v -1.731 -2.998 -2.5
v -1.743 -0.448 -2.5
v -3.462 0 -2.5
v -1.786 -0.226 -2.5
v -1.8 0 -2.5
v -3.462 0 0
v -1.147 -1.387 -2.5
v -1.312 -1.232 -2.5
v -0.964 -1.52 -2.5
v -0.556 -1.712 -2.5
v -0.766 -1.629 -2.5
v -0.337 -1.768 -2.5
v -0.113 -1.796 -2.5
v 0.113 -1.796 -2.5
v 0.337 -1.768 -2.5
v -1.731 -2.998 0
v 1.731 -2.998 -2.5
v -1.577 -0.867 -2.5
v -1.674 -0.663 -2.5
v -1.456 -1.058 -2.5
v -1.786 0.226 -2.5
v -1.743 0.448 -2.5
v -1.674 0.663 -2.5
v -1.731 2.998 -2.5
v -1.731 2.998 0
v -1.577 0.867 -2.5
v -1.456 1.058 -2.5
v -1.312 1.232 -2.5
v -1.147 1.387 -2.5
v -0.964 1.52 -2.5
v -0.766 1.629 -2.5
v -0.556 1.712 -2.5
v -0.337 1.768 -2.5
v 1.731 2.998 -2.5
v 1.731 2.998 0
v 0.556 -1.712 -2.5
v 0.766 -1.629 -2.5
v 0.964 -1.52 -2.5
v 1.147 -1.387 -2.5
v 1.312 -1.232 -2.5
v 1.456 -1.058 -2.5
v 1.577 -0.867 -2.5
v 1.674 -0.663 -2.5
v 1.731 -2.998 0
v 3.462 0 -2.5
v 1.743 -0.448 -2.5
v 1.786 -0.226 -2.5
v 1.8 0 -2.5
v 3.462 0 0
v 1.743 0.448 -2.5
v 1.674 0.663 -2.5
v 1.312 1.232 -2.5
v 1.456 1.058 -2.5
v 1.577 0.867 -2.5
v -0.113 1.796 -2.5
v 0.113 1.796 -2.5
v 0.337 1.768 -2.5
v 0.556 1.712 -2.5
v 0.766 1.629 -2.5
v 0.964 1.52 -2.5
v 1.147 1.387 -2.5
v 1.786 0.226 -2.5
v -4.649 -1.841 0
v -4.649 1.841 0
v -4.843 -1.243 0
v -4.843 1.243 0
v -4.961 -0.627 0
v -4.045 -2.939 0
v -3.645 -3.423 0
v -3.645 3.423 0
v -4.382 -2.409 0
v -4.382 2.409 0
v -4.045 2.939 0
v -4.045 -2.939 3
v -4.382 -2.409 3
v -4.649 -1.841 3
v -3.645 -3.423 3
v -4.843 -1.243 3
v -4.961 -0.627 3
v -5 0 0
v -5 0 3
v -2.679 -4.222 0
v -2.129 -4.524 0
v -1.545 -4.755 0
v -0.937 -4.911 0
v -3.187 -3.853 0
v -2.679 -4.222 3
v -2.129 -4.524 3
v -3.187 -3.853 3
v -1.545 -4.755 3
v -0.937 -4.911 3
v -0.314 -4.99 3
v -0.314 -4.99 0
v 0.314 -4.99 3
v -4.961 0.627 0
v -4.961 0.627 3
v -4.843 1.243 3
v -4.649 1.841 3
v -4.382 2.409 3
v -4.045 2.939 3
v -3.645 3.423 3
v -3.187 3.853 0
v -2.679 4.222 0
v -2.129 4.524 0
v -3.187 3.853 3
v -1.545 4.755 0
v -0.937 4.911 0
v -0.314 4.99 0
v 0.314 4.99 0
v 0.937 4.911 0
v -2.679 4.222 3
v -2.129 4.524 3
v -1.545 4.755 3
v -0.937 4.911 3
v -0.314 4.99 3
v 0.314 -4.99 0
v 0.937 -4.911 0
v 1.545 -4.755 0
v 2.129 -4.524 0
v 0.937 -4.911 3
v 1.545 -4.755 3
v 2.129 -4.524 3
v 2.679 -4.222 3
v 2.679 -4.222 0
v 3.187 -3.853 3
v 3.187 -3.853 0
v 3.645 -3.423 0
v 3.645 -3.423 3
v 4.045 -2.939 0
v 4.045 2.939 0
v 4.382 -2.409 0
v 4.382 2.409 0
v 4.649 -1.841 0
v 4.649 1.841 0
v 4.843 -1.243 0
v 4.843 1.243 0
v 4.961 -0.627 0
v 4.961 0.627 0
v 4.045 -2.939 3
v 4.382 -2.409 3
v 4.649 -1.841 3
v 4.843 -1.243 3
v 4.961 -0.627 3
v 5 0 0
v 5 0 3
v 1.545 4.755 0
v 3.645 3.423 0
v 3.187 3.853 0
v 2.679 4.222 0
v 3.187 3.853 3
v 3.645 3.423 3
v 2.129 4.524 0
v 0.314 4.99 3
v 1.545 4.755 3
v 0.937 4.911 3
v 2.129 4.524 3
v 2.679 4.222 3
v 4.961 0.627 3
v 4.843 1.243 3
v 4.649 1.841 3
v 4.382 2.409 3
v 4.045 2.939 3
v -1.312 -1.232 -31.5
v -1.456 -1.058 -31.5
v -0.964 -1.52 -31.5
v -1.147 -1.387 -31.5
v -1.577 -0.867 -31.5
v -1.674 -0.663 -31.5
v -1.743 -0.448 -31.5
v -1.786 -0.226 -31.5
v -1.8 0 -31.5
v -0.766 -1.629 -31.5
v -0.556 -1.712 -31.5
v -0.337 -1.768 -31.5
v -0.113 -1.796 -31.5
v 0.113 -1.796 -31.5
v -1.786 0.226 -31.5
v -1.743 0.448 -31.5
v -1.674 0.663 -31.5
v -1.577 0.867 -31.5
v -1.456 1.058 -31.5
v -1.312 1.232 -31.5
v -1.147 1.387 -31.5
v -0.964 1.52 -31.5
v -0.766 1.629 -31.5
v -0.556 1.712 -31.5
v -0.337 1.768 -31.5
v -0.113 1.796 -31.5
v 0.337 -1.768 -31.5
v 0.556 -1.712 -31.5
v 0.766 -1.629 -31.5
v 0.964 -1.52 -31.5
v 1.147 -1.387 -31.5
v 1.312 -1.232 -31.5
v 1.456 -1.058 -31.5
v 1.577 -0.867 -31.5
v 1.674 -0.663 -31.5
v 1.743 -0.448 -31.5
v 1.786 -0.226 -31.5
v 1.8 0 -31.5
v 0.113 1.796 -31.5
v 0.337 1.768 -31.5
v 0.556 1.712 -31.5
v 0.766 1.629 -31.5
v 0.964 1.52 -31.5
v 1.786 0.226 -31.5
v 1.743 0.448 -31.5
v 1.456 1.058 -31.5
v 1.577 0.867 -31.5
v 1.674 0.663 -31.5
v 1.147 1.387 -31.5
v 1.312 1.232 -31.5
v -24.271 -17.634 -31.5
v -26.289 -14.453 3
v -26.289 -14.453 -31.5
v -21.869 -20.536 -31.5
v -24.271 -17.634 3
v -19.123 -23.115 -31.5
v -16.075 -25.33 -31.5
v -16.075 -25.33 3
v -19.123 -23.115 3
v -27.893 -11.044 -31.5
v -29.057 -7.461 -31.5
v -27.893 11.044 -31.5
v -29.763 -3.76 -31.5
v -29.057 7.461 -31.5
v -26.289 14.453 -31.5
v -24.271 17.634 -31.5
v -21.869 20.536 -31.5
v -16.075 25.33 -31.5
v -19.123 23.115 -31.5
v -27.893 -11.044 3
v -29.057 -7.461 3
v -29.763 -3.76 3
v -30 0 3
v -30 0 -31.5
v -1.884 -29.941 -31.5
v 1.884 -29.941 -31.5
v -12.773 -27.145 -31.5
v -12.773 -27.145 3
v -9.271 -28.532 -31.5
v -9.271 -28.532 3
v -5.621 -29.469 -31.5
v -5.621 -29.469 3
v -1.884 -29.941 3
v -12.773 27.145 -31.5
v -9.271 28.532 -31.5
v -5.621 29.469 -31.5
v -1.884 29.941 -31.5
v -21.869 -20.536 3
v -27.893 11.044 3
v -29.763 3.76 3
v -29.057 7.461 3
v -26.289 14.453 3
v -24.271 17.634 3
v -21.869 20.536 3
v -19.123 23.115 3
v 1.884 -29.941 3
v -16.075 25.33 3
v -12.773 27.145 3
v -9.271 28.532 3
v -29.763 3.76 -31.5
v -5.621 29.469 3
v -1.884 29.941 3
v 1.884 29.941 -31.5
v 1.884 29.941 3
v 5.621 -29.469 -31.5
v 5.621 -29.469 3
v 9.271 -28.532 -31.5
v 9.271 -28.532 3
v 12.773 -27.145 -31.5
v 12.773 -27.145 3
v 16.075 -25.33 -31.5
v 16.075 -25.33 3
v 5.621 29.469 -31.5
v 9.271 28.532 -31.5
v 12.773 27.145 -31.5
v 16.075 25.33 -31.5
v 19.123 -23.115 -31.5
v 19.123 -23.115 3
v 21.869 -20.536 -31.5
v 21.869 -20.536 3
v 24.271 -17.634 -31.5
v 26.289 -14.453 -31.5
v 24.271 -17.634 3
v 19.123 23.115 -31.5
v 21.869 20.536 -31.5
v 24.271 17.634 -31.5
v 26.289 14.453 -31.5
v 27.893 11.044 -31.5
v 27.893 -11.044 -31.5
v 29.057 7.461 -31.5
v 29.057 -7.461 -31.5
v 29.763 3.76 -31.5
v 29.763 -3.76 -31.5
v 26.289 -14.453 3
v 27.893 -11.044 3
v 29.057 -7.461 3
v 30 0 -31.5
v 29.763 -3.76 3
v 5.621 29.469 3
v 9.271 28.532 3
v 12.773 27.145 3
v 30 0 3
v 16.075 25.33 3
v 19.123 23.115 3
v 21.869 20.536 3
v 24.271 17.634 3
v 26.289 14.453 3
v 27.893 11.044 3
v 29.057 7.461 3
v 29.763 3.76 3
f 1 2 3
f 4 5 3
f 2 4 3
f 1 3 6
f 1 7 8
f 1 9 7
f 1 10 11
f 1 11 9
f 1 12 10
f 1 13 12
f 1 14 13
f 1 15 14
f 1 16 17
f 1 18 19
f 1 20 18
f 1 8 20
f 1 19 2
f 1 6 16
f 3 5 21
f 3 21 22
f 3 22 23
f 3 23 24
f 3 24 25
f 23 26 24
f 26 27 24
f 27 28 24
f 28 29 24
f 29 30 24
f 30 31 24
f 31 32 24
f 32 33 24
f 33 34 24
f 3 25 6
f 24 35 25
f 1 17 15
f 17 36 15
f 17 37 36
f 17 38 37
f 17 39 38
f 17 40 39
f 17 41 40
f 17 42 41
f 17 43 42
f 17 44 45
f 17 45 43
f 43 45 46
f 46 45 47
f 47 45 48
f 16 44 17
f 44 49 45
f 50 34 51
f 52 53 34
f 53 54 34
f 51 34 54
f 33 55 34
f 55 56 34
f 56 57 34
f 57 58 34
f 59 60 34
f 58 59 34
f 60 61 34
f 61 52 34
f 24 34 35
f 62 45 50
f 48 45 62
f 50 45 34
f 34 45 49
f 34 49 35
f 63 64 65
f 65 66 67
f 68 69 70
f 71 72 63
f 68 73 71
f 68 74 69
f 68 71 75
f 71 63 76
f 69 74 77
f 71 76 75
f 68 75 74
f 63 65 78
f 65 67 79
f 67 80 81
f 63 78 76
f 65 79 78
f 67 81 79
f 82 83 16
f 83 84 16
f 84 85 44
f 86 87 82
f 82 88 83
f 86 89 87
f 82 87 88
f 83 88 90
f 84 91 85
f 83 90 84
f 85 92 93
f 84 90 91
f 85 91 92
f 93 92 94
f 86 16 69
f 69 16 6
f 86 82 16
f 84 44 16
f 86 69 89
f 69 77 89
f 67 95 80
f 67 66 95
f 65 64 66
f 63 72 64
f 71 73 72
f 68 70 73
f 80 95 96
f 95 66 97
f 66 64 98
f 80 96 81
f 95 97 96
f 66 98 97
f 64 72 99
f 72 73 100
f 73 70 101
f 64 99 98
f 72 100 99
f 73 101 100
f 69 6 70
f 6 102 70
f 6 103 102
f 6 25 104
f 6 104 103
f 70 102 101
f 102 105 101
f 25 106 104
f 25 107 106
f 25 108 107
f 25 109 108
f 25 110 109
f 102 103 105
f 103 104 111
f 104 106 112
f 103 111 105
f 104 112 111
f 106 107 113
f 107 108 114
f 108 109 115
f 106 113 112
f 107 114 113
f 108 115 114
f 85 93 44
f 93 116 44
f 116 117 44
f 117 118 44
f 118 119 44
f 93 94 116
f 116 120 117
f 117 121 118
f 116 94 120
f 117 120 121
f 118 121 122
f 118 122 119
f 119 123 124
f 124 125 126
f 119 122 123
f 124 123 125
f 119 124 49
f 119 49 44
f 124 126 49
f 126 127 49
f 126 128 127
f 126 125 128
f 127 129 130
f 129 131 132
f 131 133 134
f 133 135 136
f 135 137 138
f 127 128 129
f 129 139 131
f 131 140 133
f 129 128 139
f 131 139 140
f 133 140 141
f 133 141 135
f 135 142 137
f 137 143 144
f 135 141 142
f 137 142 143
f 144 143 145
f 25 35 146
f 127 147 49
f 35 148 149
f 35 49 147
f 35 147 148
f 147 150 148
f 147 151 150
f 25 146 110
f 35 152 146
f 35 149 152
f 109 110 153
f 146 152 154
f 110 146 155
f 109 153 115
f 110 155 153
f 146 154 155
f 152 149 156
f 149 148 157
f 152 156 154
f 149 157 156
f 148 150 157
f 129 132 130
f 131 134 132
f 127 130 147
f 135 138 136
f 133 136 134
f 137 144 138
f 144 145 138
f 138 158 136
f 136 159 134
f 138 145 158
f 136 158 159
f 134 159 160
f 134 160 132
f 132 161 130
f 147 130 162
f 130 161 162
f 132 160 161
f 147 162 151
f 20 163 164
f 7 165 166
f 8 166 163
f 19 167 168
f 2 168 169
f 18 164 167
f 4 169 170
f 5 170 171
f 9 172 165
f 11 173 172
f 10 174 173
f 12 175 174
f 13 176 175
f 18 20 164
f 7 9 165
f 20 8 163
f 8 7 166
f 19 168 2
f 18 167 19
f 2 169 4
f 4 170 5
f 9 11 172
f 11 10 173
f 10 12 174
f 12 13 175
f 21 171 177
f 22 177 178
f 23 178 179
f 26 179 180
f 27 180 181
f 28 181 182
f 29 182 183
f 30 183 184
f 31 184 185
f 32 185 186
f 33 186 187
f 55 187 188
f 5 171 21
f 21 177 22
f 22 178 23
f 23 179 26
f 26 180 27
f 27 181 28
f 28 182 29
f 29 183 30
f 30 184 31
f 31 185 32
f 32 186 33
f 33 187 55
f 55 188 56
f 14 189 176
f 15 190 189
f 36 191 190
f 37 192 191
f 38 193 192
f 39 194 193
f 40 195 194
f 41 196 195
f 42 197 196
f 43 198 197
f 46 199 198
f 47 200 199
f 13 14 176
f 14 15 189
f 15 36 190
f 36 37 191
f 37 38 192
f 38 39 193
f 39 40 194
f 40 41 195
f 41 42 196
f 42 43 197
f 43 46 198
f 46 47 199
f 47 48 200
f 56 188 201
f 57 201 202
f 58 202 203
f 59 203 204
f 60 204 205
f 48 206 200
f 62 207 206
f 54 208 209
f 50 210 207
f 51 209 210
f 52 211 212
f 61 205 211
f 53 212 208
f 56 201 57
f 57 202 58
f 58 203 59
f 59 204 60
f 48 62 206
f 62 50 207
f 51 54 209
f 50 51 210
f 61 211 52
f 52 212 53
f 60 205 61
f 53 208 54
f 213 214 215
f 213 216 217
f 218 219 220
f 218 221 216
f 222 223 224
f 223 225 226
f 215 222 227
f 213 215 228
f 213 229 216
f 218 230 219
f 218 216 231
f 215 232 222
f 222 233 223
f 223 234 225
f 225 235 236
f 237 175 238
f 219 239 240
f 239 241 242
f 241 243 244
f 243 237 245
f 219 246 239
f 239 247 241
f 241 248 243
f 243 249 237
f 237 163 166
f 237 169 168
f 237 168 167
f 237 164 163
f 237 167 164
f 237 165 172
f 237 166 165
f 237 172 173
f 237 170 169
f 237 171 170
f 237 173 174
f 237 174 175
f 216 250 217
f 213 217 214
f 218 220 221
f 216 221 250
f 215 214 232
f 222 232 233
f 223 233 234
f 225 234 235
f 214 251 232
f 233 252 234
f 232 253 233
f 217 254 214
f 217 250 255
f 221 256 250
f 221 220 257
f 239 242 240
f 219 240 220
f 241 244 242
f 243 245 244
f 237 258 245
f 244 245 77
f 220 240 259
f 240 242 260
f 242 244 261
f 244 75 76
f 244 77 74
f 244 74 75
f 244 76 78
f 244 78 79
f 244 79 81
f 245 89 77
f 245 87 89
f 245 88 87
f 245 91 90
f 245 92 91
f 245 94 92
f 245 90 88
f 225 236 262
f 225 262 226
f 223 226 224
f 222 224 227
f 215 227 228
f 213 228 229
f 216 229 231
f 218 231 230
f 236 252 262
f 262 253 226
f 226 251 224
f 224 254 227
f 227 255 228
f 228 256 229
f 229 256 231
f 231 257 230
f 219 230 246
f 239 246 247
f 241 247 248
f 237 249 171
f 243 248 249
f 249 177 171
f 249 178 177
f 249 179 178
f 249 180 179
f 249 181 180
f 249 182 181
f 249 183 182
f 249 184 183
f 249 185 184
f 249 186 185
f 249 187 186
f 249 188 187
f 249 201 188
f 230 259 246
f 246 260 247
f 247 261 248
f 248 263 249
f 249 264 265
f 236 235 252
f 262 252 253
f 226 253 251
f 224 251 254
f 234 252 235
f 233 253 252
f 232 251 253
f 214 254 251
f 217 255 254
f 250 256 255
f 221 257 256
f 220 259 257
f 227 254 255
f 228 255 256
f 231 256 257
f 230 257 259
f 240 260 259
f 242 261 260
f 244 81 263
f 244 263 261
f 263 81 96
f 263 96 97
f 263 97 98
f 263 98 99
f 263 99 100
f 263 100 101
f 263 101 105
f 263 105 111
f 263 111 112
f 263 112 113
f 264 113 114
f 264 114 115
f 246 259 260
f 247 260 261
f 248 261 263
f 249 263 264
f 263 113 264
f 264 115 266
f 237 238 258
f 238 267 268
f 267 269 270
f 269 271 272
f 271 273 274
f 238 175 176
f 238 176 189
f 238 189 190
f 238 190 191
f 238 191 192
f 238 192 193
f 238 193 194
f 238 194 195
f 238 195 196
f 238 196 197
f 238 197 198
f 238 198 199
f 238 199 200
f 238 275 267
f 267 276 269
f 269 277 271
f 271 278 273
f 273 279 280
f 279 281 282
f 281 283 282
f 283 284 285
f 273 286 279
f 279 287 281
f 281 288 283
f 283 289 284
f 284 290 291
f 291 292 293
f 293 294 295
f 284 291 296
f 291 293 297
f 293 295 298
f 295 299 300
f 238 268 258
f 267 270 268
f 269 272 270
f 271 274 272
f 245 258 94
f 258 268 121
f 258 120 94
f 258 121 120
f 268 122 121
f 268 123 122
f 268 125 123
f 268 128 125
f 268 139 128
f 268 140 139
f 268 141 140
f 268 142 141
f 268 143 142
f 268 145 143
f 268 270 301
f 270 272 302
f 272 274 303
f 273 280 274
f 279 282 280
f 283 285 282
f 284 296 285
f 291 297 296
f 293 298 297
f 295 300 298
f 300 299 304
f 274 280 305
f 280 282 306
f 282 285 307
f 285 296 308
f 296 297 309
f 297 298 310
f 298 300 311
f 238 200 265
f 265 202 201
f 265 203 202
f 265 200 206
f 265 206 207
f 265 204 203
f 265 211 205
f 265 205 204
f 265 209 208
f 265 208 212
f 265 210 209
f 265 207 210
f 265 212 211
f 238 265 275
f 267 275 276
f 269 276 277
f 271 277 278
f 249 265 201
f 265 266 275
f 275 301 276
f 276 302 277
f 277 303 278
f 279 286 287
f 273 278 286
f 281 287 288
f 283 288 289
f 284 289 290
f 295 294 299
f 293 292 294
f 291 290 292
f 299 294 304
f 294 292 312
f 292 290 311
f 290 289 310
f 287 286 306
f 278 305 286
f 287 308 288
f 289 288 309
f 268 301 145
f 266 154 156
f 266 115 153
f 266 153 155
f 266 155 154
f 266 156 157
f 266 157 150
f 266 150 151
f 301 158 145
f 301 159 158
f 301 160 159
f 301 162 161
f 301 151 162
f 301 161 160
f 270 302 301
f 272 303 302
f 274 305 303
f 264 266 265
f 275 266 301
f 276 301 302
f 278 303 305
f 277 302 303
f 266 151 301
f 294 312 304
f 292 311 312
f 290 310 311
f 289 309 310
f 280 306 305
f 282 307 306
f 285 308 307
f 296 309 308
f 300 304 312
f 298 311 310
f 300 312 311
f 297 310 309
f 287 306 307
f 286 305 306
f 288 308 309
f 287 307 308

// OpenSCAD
$fn = 50;

difference() {
	union() {
		translate(v = [0, 0, -31.5]) {
			cylinder(h = 34.5, r = 30.0);
		}
	}
	union() {
		translate(v = [0, 0, 0]) {
			rotate(a = [0, 0, 0]) {
				difference() {
					union() {
						translate(v = [0, 0, -2.5]) {
							linear_extrude(height = 2.5) {
								polygon(points = [[3.4619999999999997, 0.0], [1.7310000000000003, 2.9981799479017264], [-1.7309999999999992, 2.9981799479017264], [-3.4619999999999997, 4.2397272186481365e-16], [-1.7310000000000014, -2.998179947901726], [1.7309999999999977, -2.9981799479017277]]);
							}
						}
					}
					union();
				}
			}
		}
		#cylinder(h = 3, r = 5.0);
		#translate(v = [0, 0, -100.0]) {
			cylinder(h = 200, r = 1.8);
		}
	}
}
